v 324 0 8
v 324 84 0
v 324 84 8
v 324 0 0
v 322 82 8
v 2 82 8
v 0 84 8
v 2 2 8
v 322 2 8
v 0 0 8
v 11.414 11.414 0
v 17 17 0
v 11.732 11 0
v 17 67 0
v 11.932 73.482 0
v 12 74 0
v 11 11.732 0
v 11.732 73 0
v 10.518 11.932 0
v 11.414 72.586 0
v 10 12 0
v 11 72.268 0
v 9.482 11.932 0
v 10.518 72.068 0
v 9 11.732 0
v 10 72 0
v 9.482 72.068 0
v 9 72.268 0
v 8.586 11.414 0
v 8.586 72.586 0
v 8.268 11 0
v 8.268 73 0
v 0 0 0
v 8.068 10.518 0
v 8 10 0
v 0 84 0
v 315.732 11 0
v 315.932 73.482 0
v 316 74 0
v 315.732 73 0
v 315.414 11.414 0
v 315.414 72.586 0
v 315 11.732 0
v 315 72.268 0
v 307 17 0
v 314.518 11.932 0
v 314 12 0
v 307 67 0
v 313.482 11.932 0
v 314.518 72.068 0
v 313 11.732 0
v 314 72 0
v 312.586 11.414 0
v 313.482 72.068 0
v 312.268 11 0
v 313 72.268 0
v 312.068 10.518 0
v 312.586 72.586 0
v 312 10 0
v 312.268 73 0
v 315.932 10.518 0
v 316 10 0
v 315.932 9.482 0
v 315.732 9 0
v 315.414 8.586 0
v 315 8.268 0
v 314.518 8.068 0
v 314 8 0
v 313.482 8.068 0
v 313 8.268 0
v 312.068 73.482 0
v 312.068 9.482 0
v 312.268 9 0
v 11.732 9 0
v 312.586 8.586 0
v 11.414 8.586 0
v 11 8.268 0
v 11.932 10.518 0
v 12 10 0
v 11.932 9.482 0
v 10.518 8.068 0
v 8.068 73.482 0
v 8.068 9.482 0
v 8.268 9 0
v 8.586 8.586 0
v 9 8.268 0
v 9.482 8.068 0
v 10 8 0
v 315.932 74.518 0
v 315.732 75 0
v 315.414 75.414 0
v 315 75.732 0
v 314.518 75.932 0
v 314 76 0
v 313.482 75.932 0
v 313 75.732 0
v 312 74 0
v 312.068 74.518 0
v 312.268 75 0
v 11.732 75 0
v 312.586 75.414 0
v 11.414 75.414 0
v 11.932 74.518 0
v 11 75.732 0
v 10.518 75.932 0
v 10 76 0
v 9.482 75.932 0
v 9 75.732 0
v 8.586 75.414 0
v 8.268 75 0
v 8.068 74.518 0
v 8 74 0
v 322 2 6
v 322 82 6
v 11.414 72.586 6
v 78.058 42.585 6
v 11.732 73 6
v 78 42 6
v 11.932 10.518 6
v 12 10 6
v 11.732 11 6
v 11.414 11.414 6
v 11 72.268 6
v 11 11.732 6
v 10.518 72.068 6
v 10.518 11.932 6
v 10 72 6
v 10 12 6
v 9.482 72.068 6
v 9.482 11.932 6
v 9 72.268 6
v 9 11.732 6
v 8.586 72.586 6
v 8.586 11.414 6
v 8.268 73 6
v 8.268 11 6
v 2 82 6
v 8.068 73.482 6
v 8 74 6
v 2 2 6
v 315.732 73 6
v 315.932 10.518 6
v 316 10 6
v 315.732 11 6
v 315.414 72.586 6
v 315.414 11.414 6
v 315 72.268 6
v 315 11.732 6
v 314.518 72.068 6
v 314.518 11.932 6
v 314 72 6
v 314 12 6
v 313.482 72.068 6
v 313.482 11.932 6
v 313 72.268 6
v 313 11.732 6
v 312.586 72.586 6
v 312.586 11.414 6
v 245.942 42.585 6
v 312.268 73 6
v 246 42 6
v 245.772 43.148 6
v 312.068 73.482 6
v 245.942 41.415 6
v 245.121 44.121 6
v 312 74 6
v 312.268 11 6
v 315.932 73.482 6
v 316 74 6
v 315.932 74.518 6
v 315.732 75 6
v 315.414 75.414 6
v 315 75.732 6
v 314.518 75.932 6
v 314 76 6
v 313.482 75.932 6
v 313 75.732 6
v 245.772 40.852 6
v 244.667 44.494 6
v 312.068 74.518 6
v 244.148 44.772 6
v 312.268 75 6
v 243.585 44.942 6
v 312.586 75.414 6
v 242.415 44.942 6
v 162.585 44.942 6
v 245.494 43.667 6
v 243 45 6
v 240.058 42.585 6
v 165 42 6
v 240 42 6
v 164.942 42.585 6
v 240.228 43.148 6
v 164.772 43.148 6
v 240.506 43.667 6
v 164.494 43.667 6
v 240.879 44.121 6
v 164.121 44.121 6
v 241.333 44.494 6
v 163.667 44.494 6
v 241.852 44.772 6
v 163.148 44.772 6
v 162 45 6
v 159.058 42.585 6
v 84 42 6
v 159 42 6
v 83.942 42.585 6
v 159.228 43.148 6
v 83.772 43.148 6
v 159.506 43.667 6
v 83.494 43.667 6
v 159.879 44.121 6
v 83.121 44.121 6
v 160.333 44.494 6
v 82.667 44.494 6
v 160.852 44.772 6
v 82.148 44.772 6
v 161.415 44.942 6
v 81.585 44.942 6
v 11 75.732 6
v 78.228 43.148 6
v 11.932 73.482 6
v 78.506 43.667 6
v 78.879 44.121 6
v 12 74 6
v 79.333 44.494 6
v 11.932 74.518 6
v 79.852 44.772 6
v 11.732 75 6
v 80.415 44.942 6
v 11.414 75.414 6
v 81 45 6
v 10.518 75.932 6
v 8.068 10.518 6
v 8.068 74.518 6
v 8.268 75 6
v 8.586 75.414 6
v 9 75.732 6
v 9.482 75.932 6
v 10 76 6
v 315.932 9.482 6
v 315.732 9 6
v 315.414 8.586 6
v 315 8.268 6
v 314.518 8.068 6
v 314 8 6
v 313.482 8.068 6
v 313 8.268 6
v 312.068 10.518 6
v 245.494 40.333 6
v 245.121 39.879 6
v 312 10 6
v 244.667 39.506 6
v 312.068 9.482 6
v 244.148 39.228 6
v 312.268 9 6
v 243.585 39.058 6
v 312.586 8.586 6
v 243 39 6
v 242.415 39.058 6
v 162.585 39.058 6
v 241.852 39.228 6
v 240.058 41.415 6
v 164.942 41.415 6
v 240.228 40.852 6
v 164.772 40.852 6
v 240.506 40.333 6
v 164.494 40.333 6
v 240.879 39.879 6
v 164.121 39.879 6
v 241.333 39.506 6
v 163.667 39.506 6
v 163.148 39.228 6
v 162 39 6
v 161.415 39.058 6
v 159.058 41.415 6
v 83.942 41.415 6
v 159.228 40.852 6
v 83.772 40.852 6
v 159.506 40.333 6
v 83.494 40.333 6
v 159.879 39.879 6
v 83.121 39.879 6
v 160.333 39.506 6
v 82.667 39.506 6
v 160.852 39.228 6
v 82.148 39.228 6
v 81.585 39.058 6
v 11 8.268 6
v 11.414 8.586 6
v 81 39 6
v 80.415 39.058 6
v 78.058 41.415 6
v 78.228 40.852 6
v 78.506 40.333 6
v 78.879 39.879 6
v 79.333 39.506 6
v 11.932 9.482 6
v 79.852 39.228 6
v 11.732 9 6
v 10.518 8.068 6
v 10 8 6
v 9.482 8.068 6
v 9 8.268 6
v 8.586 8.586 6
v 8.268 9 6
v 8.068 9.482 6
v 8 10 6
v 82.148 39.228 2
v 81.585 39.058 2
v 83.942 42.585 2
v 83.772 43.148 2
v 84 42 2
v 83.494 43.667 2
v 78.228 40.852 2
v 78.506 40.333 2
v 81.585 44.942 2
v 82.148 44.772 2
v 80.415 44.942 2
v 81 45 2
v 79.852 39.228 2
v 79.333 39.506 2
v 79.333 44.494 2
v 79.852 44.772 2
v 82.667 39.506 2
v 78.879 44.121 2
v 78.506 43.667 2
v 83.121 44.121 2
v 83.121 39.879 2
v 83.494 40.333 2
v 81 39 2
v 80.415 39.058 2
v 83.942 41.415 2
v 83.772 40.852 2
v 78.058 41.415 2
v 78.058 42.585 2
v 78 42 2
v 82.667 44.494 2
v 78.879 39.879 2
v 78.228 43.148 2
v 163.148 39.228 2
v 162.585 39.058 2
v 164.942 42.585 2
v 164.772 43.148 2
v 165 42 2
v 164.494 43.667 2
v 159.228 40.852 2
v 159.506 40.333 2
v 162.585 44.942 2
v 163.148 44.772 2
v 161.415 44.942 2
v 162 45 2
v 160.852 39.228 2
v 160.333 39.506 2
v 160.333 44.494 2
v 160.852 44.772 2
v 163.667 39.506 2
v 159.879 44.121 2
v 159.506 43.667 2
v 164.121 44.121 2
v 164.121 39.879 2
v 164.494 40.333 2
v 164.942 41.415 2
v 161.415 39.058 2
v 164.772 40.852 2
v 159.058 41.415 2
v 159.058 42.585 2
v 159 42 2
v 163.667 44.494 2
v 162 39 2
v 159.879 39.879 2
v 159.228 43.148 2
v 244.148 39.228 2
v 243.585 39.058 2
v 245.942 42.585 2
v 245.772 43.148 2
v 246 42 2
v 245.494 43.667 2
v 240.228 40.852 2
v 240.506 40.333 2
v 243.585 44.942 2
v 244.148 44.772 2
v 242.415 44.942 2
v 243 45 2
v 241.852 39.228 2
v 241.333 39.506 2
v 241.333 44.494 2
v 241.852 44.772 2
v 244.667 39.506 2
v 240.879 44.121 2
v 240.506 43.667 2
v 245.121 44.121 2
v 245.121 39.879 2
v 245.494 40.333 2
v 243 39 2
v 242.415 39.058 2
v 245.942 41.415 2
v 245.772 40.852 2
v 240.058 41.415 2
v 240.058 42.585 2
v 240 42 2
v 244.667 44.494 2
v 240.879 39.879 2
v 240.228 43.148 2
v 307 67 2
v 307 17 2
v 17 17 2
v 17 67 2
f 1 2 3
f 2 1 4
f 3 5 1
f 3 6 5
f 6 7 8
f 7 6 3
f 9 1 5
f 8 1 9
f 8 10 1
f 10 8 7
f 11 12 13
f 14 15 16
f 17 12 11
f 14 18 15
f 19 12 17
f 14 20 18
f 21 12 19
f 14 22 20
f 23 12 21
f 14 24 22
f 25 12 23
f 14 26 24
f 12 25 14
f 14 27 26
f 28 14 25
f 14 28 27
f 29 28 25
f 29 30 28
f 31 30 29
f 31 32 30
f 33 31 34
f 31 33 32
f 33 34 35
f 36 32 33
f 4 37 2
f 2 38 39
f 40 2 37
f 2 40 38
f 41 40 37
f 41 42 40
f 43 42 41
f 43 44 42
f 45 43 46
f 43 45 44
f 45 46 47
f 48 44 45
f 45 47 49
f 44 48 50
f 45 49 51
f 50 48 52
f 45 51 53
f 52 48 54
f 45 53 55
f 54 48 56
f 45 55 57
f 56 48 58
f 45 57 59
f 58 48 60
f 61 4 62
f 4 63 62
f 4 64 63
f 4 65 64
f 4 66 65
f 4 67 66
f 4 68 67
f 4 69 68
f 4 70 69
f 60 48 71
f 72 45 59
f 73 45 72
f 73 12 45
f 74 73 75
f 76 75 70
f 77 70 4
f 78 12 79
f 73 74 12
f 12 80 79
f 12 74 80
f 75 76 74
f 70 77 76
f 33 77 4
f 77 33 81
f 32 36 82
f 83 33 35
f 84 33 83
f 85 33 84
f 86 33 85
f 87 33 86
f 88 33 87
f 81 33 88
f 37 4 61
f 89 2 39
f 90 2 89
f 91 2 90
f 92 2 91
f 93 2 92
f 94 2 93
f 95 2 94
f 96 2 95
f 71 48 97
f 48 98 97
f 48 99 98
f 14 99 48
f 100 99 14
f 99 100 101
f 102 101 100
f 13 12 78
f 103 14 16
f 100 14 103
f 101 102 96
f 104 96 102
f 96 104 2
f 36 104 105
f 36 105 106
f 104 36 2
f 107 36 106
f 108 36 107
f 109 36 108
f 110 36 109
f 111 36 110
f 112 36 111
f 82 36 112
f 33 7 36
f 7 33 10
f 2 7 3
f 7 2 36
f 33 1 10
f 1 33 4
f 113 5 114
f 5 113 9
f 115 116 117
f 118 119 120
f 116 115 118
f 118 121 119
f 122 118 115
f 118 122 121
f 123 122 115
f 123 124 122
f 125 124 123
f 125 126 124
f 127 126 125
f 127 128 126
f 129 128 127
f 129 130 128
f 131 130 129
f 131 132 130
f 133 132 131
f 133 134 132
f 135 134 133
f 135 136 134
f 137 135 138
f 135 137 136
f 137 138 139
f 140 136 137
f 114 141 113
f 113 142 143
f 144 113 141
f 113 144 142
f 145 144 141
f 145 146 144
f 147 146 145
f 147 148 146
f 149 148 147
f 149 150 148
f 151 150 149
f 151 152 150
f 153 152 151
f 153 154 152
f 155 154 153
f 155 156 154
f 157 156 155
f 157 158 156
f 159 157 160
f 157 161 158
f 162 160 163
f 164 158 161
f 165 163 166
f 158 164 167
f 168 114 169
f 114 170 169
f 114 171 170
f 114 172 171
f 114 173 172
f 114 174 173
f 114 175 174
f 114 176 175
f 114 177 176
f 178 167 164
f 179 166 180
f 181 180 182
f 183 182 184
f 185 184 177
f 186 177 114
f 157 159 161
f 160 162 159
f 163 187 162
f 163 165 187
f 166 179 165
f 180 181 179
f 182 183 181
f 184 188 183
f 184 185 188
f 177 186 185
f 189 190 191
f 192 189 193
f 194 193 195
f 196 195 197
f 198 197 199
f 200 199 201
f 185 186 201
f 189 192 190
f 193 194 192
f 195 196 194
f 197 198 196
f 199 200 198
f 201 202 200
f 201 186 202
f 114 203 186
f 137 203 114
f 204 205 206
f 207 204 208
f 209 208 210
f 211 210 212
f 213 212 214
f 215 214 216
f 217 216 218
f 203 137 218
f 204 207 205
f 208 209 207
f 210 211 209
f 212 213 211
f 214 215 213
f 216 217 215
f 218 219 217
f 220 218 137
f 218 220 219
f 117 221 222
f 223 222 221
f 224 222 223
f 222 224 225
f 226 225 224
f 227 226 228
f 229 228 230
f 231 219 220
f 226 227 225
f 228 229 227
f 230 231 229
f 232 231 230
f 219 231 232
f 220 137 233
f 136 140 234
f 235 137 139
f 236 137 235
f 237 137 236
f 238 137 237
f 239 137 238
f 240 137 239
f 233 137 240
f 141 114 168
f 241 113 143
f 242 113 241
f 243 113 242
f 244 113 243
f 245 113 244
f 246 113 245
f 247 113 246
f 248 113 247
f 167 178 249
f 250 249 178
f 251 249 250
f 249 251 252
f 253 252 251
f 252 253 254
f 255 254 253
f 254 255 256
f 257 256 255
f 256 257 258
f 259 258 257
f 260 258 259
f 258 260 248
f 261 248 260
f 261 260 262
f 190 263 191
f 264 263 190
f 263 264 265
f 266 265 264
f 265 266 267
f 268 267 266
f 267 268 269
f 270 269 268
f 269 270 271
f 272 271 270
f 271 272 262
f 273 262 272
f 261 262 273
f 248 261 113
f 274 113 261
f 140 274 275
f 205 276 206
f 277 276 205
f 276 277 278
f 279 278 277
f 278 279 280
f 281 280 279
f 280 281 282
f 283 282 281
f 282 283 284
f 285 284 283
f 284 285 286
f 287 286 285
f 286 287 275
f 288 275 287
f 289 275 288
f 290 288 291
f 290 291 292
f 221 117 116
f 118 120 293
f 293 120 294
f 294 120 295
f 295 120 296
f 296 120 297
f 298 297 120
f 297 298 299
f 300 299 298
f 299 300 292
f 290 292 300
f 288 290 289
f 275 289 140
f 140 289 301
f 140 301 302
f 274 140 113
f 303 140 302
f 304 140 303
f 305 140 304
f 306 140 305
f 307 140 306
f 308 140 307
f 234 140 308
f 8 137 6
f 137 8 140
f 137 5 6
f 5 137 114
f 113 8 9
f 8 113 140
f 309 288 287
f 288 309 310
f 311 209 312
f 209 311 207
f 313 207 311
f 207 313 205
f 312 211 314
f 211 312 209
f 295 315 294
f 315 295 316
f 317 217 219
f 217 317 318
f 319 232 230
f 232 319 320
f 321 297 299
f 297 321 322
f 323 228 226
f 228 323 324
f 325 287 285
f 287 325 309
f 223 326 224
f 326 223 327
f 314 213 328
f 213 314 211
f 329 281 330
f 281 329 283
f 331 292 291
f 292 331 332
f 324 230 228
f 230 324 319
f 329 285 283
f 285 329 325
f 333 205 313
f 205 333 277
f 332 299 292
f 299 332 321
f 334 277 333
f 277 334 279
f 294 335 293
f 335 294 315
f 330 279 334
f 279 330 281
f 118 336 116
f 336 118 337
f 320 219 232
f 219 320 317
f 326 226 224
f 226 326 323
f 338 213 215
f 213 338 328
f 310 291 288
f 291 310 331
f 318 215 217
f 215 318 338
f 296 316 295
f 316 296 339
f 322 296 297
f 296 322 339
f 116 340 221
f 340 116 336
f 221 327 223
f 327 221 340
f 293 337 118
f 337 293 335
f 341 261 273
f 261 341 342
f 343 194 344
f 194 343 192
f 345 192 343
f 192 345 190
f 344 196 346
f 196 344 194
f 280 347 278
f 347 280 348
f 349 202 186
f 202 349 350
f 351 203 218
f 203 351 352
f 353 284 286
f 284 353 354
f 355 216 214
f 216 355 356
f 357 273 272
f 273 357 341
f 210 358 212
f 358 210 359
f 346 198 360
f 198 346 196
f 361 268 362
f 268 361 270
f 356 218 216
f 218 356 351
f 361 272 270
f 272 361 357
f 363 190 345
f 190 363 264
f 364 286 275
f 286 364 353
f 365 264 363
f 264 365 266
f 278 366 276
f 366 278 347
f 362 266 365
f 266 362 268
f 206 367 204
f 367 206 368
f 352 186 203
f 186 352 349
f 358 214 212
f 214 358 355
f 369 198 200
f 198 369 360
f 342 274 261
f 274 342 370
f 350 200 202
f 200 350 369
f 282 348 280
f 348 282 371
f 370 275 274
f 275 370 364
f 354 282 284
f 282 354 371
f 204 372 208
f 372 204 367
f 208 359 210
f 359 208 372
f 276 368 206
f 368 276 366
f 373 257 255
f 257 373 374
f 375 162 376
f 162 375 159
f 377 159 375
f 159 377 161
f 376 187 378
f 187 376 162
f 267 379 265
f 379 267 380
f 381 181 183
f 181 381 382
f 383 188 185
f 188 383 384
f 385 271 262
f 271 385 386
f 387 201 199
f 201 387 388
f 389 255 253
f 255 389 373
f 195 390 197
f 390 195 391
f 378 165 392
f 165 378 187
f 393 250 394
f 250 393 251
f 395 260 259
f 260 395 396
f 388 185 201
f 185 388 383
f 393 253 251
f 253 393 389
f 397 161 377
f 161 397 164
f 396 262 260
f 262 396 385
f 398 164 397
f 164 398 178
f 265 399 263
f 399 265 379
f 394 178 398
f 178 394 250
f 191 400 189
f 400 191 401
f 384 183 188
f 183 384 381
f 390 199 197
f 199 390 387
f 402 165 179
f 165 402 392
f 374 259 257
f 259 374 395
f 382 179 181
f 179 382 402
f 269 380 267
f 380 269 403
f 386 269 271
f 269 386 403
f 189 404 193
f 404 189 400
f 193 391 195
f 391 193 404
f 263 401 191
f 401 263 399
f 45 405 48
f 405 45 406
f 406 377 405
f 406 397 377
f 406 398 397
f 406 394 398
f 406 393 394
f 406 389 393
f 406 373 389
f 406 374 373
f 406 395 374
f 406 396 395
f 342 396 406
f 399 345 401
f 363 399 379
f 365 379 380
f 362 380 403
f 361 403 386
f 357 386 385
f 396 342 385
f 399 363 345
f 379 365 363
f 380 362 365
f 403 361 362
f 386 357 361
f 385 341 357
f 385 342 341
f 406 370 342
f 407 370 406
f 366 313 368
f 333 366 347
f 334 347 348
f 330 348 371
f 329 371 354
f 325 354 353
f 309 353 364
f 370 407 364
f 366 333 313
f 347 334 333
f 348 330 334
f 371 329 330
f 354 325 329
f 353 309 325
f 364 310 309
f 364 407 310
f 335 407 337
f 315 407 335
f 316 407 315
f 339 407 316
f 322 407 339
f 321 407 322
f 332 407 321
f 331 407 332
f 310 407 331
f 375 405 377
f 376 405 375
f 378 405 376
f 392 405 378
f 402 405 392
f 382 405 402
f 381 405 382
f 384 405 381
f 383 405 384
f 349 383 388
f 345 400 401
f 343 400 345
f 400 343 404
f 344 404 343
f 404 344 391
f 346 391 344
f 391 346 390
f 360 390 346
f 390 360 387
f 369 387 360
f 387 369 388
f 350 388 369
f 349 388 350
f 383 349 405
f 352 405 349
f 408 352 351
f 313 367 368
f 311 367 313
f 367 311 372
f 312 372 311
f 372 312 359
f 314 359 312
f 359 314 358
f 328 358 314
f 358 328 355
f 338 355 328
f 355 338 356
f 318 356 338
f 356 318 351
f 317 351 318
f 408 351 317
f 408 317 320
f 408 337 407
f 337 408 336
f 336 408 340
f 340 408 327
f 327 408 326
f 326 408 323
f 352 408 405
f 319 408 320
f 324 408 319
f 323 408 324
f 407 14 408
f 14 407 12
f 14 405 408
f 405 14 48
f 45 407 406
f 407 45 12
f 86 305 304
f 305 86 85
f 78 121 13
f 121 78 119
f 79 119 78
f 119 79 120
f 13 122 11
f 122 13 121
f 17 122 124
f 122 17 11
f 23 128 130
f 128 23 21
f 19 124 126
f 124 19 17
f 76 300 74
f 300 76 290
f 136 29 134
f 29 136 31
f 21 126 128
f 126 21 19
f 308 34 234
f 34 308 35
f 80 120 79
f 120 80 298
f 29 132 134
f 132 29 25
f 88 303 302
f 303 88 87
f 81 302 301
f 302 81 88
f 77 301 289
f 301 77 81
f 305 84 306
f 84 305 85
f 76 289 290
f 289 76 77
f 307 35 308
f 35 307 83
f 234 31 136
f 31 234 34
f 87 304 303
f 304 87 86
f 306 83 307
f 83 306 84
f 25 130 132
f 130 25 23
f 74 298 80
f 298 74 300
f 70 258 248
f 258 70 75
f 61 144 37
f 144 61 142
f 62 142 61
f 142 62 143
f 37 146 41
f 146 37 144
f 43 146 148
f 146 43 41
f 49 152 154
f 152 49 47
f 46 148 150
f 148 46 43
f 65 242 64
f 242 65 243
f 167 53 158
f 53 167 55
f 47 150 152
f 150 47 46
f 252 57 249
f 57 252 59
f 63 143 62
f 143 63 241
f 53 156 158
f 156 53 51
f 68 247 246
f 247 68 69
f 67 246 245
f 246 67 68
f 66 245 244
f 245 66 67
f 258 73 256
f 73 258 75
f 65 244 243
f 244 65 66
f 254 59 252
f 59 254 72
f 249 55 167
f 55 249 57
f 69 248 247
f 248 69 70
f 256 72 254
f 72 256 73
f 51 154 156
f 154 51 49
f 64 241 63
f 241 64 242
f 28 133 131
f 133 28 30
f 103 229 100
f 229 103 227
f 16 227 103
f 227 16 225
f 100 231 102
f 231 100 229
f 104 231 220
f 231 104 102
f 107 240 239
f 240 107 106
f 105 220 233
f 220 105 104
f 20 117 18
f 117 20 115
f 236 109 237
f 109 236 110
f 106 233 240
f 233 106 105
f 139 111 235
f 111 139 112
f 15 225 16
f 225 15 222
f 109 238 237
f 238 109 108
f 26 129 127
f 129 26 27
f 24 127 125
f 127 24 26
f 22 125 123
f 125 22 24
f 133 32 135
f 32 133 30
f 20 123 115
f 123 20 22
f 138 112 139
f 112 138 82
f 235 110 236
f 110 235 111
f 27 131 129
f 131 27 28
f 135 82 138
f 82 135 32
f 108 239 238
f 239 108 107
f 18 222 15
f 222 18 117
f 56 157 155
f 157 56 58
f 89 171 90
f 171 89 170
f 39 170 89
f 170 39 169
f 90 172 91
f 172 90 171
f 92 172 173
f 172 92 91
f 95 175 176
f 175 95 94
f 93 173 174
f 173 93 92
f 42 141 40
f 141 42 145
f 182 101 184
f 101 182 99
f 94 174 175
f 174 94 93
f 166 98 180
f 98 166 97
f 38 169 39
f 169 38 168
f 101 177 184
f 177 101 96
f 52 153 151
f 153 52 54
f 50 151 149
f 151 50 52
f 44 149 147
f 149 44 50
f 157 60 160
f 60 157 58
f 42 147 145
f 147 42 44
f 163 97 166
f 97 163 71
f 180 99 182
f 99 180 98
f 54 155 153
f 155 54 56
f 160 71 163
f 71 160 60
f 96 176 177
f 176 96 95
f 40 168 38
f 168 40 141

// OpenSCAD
/*
 * 8x32 LED Panel Housing
 * Compact housing for flexible 8x32 LED matrix panel
 *
 * Features:
 * - Front channel to hold LED panel flush
 * - 3 wire holes through LED panel surface (for connectors to pass through)
 * - 4× M3 mounting holes at corners
 * - Thin 8mm profile for space efficiency
 */

// ========== CONFIGURATION ==========

// LED Panel dimensions (from photo: 12.59in x 3.15in ≈ 320mm x 80mm)
panel_length = 320;      // 12.59 inches
panel_width = 80;        // 3.15 inches  
panel_thickness = 1.5;   // Flexible PCB thickness

// Housing dimensions
housing_length = panel_length + 4;  // 324mm (add small margin)
housing_width = panel_width + 4;    // 84mm
housing_depth = 8;                   // Shallow profile
wall_thickness = 2;

// Front LED channel (shallow groove to hold panel)
led_channel_depth = 2;      // Just enough to hold panel flat
led_channel_width = panel_width;
led_channel_length = panel_length;

// Wire routing
wire_hole_diameter = 6;     // For connector pass-through
wire_channel_width = 10;    // Channel width for wires
wire_channel_depth = 3;     // Back routing depth

// Mounting holes (for hanging/attaching)
mounting_hole_dia = 4;      // M3 screw holes
mounting_hole_inset = 10;   // Distance from edges

// ========== MAIN HOUSING ==========

module led_panel_housing() {
    difference() {
        // Main body
        cube([housing_length, housing_width, housing_depth]);
        
        // ===== FRONT: LED panel channel (shallow) =====
        translate([wall_thickness, wall_thickness, housing_depth - led_channel_depth])
            cube([led_channel_length, 
                  led_channel_width, 
                  led_channel_depth + 0.1]);  // Goes to top surface
        
        // ===== WIRE HOLES through LED panel surface (green area) =====
        // 3 holes in the bottom of LED channel so connectors can pass through
        
        // Left hole (for left connector)
        translate([housing_length * 0.25, housing_width/2, -0.1])
            cylinder(h=housing_depth - led_channel_depth + 0.2, d=wire_hole_diameter, $fn=32);
        
        // Center hole (for middle connector)
        translate([housing_length * 0.50, housing_width/2, -0.1])
            cylinder(h=housing_depth - led_channel_depth + 0.2, d=wire_hole_diameter, $fn=32);
        
        // Right hole (for right connector)
        translate([housing_length * 0.75, housing_width/2, -0.1])
            cylinder(h=housing_depth - led_channel_depth + 0.2, d=wire_hole_diameter, $fn=32);
        
        // ===== Weight reduction cavity (back side) =====
        translate([wall_thickness + 15,
                  wall_thickness + 15,
                  -0.1])
            cube([housing_length - 2*wall_thickness - 30,
                  housing_width - 2*wall_thickness - 30,
                  wall_thickness + 0.1]);
        
        // ===== Mounting holes (corners for hanging) =====
        // Top left
        translate([mounting_hole_inset, mounting_hole_inset, -0.1])
            cylinder(h=housing_depth + 0.2, d=mounting_hole_dia, $fn=24);
        
        // Top right
        translate([housing_length - mounting_hole_inset, mounting_hole_inset, -0.1])
            cylinder(h=housing_depth + 0.2, d=mounting_hole_dia, $fn=24);
        
        // Bottom left
        translate([mounting_hole_inset, housing_width - mounting_hole_inset, -0.1])
            cylinder(h=housing_depth + 0.2, d=mounting_hole_dia, $fn=24);
        
        // Bottom right
        translate([housing_length - mounting_hole_inset, housing_width - mounting_hole_inset, -0.1])
            cylinder(h=housing_depth + 0.2, d=mounting_hole_dia, $fn=24);
    }
}

// ========== LED PANEL VISUALIZATION (optional) ==========
module led_panel_visual() {
    color("darkgreen", 0.8)
    translate([wall_thickness, 
              wall_thickness, 
              housing_depth - led_channel_depth + 0.5])
    cube([panel_length, panel_width, 0.5]);
    
    // LED positions (8 rows x 32 columns)
    led_spacing_x = panel_length / 32;
    led_spacing_y = panel_width / 8;
    
    for (row = [0:7]) {
        for (col = [0:31]) {
            color("gold", 0.6)
            translate([wall_thickness + col * led_spacing_x + led_spacing_x/2,
                      wall_thickness + row * led_spacing_y + led_spacing_y/2,
                      housing_depth - 0.5])
                cylinder(h=1, d=3, $fn=6);
        }
    }
}

// ========== RENDER ==========

// Main housing
led_panel_housing();

// LED panel visualization (uncomment to see LED layout)
// led_panel_visual();

// ========== EXPORT NOTES ==========
/*
 * DIMENSIONS:
 * - Housing: 324mm (L) × 84mm (W) × 8mm (D)
 * - Panel fit: 320mm × 80mm × 1.5mm
 * - Weight: ~40-50g (at 20% infill)
 *
 * FEATURES:
 * - Front LED channel: 2mm deep to hold panel
 * - 3× wire holes in LED panel surface (connectors pass through to back)
 * - 4× M3 mounting holes at corners  
 * - Thin profile (8mm total depth)
 *
 * PRINTING:
 * - Layer height: 0.2mm
 * - Infill: 20%
 * - Supports: None needed (print face-down)
 * - Material: PLA or PETG
 * - Print time: ~3-4 hours
 * - NOTE: 324mm length exceeds many printer beds!
 *
 * SPLITTING FOR SMALLER PRINTERS:
 * If your printer bed is < 324mm, you can:
 * 1. Split into 2× 162mm sections
 * 2. Add alignment pins/holes at the split
 * 3. Join with glue or screws after printing
 *
 * ASSEMBLY:
 * 1. Place LED panel in front channel (LEDs facing up)
 * 2. Thread wires/connectors through the 3 holes from top
 * 3. Wires exit from the back/bottom
 * 4. Mount using corner M3 holes (screws or wall anchors)
 *
 * CUSTOMIZATION:
 * - Adjust wire_hole_diameter for your connectors
 * - Add more wire holes if needed
 * - Modify housing_depth for deeper cavity
 * - Add edge lips/clips if panel needs securing
 *
 * EXPORT STL:
 * openscad -o 8x32_housing.stl 8x32_panel_housing.scad
 */
